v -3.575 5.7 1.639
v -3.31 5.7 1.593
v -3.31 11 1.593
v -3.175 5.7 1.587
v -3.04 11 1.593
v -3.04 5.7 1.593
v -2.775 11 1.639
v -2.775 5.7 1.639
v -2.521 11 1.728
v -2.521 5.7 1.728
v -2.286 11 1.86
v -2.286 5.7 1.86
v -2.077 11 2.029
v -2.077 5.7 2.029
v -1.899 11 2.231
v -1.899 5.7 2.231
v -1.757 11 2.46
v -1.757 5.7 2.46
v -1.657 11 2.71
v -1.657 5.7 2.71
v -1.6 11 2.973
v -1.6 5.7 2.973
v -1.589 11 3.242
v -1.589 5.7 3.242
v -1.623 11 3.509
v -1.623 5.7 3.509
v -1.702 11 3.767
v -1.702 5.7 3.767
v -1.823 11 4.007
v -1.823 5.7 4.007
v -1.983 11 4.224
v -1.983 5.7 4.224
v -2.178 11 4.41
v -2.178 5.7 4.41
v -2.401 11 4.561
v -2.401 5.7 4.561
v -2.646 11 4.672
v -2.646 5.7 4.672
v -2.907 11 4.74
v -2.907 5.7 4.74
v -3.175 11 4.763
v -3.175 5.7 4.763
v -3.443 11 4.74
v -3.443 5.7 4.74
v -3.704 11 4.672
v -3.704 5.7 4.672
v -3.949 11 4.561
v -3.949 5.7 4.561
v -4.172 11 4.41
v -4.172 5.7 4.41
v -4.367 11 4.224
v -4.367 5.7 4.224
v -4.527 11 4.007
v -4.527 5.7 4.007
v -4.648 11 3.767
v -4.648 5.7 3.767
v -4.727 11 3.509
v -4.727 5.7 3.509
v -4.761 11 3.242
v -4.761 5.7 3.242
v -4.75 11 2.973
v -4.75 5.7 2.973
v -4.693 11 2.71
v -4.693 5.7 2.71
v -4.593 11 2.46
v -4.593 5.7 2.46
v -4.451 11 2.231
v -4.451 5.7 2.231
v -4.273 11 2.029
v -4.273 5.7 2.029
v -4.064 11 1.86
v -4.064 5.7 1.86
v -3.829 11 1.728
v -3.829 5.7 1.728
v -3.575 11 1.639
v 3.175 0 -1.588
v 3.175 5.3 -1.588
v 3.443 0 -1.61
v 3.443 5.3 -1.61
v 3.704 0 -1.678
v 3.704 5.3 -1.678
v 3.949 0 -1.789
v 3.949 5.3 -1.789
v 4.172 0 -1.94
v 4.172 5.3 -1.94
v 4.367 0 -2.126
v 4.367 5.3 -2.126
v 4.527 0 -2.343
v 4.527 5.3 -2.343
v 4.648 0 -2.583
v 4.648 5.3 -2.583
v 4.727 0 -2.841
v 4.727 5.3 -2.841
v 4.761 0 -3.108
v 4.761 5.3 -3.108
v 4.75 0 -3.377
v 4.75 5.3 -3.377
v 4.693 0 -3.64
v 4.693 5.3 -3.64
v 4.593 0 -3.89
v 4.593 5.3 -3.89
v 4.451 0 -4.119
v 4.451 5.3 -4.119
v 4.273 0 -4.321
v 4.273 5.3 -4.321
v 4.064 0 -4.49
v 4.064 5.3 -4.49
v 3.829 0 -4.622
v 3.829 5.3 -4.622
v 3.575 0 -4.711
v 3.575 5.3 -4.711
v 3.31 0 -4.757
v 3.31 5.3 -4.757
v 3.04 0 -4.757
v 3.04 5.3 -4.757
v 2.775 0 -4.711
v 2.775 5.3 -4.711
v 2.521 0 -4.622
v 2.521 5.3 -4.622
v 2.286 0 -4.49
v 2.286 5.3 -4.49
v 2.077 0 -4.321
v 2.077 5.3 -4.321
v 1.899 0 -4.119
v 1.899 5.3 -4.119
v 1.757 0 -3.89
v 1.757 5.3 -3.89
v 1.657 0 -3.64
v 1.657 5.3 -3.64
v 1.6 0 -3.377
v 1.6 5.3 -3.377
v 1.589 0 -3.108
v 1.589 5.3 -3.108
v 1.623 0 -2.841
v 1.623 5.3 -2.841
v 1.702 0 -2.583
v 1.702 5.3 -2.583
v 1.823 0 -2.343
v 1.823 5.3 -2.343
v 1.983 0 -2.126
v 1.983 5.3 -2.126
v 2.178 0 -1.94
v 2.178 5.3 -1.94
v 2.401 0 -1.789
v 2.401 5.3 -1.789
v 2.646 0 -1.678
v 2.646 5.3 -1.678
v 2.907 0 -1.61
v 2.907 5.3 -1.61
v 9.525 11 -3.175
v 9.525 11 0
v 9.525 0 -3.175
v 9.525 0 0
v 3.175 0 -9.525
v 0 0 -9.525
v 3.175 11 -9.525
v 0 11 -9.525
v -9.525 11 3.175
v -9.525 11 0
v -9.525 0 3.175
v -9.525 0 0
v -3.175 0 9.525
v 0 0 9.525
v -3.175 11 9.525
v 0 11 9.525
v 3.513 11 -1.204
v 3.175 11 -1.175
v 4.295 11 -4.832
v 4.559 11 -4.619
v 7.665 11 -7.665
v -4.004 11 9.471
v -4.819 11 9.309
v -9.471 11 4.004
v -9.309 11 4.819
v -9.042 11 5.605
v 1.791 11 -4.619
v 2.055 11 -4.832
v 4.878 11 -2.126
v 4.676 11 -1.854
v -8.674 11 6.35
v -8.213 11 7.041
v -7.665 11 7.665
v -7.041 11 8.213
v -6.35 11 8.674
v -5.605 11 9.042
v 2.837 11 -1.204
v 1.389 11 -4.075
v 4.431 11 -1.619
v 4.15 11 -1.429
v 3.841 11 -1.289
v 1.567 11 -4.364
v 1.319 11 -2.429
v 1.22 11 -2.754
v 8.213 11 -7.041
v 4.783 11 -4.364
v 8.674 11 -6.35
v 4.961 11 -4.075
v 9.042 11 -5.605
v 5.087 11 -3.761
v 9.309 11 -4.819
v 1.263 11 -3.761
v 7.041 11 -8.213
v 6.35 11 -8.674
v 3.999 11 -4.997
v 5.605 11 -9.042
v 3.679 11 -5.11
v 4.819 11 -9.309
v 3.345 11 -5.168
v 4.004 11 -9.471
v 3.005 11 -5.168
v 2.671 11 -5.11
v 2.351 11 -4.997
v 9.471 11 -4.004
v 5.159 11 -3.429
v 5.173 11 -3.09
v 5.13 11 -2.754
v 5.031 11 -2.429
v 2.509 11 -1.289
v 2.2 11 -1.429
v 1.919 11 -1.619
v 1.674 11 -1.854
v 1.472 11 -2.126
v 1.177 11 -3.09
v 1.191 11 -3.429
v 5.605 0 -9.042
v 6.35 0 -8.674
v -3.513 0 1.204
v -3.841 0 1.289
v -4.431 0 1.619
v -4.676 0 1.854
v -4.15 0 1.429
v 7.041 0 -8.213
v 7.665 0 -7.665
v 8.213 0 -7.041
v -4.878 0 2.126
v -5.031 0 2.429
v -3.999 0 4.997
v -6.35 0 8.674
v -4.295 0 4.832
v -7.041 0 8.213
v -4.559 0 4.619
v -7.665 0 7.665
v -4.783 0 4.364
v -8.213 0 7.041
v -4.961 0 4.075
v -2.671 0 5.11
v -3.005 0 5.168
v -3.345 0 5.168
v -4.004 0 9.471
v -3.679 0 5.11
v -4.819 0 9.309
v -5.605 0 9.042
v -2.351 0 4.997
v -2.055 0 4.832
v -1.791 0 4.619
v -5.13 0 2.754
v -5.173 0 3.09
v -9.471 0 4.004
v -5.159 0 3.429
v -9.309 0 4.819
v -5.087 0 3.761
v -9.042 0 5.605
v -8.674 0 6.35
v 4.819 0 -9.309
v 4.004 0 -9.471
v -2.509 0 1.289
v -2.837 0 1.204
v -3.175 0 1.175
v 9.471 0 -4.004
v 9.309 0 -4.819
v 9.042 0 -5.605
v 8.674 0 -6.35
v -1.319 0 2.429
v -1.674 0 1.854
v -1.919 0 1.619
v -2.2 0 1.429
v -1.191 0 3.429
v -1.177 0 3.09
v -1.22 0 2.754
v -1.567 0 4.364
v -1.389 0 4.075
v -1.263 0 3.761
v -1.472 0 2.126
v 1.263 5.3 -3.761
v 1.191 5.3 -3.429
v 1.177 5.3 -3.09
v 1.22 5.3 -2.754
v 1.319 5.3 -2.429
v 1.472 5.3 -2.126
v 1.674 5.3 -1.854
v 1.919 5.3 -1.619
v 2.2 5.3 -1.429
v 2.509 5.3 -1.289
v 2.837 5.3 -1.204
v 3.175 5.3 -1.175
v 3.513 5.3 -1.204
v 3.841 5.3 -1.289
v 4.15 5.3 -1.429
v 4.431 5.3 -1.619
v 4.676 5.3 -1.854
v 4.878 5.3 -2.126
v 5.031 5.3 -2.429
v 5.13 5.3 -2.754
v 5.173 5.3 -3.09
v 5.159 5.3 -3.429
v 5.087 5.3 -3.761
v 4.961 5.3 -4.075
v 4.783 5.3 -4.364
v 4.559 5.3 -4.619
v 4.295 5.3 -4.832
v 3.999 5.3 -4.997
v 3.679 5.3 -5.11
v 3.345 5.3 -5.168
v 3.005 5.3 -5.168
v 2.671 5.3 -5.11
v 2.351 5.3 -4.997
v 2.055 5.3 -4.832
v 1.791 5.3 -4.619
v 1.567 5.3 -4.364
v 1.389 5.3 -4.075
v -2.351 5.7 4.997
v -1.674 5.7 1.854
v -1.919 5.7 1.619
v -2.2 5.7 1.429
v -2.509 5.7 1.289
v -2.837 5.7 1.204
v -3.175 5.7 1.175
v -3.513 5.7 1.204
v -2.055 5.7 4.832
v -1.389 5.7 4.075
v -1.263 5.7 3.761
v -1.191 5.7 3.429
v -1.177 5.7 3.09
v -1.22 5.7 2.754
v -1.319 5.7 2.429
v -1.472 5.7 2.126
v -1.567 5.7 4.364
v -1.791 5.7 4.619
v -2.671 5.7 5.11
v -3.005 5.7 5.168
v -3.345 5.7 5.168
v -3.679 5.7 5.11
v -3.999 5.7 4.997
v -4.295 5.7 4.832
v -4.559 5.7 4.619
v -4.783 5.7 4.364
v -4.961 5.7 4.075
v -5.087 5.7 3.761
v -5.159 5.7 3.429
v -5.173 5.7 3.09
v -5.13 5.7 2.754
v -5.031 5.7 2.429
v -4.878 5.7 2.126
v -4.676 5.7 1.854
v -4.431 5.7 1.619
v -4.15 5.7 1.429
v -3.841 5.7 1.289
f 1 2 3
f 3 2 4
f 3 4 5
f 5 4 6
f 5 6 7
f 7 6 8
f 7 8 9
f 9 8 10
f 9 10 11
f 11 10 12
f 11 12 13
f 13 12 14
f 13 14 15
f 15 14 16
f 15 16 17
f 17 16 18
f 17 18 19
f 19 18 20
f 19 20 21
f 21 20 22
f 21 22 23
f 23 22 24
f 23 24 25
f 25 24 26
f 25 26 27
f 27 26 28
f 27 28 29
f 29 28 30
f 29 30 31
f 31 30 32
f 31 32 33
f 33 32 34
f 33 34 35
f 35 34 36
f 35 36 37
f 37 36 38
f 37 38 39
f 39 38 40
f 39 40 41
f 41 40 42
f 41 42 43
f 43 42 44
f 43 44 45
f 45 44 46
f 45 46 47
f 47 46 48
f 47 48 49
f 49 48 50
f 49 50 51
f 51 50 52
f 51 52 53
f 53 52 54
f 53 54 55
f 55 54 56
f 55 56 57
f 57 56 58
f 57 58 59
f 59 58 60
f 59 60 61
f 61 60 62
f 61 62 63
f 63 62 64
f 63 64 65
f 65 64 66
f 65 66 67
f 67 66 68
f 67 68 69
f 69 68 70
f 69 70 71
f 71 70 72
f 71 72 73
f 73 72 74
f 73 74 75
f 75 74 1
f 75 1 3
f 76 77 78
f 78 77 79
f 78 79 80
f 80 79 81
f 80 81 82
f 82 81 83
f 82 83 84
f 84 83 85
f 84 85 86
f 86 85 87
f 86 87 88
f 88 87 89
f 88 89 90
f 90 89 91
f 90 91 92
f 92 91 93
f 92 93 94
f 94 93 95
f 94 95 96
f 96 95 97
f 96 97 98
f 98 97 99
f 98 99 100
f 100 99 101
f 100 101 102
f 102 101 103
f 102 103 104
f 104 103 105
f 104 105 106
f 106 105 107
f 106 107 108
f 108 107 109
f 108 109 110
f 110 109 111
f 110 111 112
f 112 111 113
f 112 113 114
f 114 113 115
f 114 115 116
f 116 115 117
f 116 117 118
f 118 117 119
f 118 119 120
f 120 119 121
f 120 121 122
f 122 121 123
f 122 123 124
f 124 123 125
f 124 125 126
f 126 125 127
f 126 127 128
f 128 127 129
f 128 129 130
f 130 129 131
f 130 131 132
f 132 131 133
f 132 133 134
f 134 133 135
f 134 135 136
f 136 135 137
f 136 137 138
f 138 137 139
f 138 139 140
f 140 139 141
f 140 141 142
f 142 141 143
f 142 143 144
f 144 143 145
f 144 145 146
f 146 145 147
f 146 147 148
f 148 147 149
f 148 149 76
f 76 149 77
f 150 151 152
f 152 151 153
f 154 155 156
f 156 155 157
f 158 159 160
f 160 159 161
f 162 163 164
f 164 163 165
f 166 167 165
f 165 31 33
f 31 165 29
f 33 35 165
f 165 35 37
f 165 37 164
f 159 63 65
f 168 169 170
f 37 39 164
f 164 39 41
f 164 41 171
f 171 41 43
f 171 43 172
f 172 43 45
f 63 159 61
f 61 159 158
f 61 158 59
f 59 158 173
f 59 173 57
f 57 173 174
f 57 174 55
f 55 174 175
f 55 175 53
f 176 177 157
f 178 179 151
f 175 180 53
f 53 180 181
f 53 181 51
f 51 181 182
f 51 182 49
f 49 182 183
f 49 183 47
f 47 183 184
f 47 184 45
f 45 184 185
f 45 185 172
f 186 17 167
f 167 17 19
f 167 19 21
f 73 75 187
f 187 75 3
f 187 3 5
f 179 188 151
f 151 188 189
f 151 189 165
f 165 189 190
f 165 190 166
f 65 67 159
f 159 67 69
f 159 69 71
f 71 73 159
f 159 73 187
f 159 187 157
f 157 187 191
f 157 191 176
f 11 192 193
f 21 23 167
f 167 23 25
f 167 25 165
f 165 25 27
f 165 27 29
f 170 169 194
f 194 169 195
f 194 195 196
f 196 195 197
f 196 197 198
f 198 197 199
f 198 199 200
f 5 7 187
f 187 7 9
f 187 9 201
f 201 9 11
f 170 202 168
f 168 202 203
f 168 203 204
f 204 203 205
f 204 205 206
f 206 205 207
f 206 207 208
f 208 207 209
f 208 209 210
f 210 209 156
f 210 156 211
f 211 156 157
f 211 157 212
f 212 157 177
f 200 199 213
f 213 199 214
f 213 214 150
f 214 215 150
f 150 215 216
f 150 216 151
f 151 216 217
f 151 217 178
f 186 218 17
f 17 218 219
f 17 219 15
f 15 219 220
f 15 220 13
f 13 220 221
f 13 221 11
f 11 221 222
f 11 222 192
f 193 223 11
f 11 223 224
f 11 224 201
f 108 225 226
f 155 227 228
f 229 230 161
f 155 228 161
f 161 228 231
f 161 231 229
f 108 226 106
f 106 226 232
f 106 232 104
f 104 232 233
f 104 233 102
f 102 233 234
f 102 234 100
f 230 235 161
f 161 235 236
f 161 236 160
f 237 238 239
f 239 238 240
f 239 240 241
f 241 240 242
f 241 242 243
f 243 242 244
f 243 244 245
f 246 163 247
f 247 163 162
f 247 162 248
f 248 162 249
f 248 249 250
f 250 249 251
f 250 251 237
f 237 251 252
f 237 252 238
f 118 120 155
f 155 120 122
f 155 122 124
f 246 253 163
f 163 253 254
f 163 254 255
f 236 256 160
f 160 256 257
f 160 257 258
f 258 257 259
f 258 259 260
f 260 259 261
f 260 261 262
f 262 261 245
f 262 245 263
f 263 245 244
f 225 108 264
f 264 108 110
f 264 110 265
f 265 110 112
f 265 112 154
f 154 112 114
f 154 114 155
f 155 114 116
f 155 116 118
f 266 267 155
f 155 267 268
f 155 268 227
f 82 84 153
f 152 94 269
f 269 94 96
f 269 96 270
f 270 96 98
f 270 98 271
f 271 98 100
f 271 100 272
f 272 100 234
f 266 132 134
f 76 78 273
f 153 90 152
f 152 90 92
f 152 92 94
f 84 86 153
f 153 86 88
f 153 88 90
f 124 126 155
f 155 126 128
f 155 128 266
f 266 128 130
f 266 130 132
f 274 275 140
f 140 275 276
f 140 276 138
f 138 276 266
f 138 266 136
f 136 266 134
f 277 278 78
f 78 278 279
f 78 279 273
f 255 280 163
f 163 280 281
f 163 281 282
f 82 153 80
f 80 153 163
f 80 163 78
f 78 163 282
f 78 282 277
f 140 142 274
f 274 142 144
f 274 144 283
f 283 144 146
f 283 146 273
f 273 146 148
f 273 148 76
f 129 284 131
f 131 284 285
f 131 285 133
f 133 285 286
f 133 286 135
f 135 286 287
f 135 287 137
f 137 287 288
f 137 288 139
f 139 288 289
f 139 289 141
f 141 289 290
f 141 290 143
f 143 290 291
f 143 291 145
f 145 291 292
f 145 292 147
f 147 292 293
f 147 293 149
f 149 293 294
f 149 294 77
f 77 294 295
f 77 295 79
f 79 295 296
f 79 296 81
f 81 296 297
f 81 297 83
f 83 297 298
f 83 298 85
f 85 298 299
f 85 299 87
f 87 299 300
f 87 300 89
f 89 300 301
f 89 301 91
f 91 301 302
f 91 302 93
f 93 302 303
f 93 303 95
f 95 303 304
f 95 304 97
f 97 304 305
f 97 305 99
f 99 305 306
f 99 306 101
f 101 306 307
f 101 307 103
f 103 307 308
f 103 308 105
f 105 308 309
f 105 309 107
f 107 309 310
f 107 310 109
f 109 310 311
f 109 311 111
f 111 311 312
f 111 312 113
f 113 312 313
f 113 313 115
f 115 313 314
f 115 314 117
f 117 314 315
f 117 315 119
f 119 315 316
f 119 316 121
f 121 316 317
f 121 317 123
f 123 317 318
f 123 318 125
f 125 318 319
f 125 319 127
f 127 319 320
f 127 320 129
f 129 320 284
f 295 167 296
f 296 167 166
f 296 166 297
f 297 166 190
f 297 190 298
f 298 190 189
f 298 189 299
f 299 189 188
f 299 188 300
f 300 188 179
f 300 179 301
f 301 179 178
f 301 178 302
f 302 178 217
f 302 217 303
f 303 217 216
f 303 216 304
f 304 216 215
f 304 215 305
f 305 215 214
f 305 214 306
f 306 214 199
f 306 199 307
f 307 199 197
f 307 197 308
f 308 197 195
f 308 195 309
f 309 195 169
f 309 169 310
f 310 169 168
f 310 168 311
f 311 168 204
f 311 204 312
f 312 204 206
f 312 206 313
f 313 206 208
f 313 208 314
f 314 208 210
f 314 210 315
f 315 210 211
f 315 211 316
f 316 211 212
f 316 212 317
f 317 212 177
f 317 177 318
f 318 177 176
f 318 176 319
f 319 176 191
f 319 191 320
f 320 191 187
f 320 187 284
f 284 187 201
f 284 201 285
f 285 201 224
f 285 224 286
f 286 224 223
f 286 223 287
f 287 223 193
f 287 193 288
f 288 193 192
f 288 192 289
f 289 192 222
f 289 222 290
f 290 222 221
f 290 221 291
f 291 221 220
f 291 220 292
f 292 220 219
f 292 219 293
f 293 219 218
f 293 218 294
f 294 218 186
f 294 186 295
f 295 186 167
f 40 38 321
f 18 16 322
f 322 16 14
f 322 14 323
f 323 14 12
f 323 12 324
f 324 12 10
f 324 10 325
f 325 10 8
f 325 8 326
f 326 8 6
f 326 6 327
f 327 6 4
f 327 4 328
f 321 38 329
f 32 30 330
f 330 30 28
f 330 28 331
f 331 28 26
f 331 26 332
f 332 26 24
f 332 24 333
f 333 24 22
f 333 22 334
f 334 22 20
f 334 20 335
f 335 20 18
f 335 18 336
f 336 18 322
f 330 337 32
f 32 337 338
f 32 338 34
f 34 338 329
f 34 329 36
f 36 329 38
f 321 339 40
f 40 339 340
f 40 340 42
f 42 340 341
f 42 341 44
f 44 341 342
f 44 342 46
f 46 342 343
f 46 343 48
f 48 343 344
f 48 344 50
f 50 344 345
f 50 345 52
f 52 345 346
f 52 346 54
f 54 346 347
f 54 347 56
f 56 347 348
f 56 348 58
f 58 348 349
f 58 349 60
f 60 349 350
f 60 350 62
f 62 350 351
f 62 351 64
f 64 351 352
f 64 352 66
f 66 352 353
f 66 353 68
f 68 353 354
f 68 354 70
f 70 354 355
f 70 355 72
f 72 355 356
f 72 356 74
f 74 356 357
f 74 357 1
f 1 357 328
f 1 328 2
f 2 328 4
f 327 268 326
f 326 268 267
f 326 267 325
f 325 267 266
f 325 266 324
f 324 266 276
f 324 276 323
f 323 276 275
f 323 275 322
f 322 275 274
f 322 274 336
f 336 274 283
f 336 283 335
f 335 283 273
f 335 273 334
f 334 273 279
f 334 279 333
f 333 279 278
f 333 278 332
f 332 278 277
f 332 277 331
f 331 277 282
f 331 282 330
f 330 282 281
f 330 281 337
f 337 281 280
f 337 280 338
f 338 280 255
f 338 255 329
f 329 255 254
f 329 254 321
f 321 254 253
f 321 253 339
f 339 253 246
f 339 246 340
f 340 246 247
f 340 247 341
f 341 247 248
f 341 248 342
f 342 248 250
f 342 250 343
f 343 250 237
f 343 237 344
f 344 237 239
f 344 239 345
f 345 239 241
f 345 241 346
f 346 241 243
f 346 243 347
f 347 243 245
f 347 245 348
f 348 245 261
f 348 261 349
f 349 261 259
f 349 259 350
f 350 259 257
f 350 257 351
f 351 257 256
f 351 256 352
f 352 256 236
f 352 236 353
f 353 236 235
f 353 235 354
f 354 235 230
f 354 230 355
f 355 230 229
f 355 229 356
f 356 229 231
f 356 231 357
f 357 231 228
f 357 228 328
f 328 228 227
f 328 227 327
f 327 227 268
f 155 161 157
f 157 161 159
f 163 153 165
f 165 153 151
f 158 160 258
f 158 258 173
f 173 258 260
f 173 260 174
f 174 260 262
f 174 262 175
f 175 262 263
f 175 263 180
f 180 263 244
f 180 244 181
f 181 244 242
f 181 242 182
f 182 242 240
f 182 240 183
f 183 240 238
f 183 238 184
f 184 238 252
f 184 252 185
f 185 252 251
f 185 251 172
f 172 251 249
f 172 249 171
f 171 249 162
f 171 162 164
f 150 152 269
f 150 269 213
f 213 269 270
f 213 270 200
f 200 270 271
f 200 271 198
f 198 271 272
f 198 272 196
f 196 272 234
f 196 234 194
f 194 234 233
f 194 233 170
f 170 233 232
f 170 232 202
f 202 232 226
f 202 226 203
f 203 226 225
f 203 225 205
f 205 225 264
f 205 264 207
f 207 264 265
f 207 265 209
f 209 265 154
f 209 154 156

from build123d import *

# Parameters (mm, degrees)
SKETCH1_W           = 19.05
SKETCH1_H           = 19.05
BOSS_EXTRUDE1_DEPTH = 11
SKETCH2_R           = 1.5875
CUT_EXTRUDE1_DEPTH  = 18.39112561
SKETCH3_R           = 2
CUT_EXTRUDE2_DEPTH  = 5.7
SKETCH4_R           = 2
CUT_EXTRUDE3_DEPTH  = 5.7
CUT_EXTRUDE4_DEPTH  = 18.39112561
FILLET1_R           = 6.35


with BuildPart() as part:
    # Sketch1 → Boss-Extrude1 (new body)
    with BuildSketch(Plane(origin=(0, 0, 0), x_dir=(1, 0, 0), z_dir=(0, 1, 0))):
        Rectangle(SKETCH1_W, SKETCH1_H)
    extrude(amount=BOSS_EXTRUDE1_DEPTH)

    # Sketch2 → Cut-Extrude1 (cut, through all)
    with BuildSketch(Plane(origin=(0, 11, 0), x_dir=(1, 0, 0), z_dir=(0, 1, 0))):
        with Locations(Location((-3.175, -3.175, 0), (0, 0, 270))):
            Circle(SKETCH2_R)
        with Locations(Location((3.175, 3.175, 0), (0, 0, 270))):
            Circle(SKETCH2_R)
    extrude(amount=-CUT_EXTRUDE1_DEPTH, mode=Mode.SUBTRACT)

    # Sketch3 → Cut-Extrude2 (cut)
    with BuildSketch(Plane(origin=(0, 11, 0), x_dir=(1, 0, 0), z_dir=(0, 1, 0))):
        with Locations(Location((3.175, 3.175, 0), (0, 0, 270))):
            Circle(SKETCH3_R)
    extrude(amount=-CUT_EXTRUDE2_DEPTH, mode=Mode.SUBTRACT)

    # Sketch4 → Cut-Extrude3 (cut)
    with BuildSketch(Plane.XZ):
        with Locations(Location((-3.175, 3.175, 0), (0, 0, 270))):
            Circle(SKETCH4_R)
    extrude(amount=-CUT_EXTRUDE3_DEPTH, mode=Mode.SUBTRACT)

    # Sketch5 → Cut-Extrude4 (cut, through all)
    with BuildSketch(Plane(origin=(0, 11, 0), x_dir=(1, 0, 0), z_dir=(0, 1, 0))):
        Polygon((-9.525, 9.525), (0, 9.525), (-9.525, 0), align=None)
        Polygon((0, -9.525), (9.525, 0), (9.525, -9.525), align=None)
    extrude(amount=-CUT_EXTRUDE4_DEPTH, mode=Mode.SUBTRACT)

    # Fillet1
    fillet1_edges = [part.edges().sort_by_distance(p)[0] for p in [
        (-9.525, 5.5, 9.525),
        (9.525, 5.5, -9.525),
    ]]
    fillet(fillet1_edges, radius=FILLET1_R)


solid = part.part
